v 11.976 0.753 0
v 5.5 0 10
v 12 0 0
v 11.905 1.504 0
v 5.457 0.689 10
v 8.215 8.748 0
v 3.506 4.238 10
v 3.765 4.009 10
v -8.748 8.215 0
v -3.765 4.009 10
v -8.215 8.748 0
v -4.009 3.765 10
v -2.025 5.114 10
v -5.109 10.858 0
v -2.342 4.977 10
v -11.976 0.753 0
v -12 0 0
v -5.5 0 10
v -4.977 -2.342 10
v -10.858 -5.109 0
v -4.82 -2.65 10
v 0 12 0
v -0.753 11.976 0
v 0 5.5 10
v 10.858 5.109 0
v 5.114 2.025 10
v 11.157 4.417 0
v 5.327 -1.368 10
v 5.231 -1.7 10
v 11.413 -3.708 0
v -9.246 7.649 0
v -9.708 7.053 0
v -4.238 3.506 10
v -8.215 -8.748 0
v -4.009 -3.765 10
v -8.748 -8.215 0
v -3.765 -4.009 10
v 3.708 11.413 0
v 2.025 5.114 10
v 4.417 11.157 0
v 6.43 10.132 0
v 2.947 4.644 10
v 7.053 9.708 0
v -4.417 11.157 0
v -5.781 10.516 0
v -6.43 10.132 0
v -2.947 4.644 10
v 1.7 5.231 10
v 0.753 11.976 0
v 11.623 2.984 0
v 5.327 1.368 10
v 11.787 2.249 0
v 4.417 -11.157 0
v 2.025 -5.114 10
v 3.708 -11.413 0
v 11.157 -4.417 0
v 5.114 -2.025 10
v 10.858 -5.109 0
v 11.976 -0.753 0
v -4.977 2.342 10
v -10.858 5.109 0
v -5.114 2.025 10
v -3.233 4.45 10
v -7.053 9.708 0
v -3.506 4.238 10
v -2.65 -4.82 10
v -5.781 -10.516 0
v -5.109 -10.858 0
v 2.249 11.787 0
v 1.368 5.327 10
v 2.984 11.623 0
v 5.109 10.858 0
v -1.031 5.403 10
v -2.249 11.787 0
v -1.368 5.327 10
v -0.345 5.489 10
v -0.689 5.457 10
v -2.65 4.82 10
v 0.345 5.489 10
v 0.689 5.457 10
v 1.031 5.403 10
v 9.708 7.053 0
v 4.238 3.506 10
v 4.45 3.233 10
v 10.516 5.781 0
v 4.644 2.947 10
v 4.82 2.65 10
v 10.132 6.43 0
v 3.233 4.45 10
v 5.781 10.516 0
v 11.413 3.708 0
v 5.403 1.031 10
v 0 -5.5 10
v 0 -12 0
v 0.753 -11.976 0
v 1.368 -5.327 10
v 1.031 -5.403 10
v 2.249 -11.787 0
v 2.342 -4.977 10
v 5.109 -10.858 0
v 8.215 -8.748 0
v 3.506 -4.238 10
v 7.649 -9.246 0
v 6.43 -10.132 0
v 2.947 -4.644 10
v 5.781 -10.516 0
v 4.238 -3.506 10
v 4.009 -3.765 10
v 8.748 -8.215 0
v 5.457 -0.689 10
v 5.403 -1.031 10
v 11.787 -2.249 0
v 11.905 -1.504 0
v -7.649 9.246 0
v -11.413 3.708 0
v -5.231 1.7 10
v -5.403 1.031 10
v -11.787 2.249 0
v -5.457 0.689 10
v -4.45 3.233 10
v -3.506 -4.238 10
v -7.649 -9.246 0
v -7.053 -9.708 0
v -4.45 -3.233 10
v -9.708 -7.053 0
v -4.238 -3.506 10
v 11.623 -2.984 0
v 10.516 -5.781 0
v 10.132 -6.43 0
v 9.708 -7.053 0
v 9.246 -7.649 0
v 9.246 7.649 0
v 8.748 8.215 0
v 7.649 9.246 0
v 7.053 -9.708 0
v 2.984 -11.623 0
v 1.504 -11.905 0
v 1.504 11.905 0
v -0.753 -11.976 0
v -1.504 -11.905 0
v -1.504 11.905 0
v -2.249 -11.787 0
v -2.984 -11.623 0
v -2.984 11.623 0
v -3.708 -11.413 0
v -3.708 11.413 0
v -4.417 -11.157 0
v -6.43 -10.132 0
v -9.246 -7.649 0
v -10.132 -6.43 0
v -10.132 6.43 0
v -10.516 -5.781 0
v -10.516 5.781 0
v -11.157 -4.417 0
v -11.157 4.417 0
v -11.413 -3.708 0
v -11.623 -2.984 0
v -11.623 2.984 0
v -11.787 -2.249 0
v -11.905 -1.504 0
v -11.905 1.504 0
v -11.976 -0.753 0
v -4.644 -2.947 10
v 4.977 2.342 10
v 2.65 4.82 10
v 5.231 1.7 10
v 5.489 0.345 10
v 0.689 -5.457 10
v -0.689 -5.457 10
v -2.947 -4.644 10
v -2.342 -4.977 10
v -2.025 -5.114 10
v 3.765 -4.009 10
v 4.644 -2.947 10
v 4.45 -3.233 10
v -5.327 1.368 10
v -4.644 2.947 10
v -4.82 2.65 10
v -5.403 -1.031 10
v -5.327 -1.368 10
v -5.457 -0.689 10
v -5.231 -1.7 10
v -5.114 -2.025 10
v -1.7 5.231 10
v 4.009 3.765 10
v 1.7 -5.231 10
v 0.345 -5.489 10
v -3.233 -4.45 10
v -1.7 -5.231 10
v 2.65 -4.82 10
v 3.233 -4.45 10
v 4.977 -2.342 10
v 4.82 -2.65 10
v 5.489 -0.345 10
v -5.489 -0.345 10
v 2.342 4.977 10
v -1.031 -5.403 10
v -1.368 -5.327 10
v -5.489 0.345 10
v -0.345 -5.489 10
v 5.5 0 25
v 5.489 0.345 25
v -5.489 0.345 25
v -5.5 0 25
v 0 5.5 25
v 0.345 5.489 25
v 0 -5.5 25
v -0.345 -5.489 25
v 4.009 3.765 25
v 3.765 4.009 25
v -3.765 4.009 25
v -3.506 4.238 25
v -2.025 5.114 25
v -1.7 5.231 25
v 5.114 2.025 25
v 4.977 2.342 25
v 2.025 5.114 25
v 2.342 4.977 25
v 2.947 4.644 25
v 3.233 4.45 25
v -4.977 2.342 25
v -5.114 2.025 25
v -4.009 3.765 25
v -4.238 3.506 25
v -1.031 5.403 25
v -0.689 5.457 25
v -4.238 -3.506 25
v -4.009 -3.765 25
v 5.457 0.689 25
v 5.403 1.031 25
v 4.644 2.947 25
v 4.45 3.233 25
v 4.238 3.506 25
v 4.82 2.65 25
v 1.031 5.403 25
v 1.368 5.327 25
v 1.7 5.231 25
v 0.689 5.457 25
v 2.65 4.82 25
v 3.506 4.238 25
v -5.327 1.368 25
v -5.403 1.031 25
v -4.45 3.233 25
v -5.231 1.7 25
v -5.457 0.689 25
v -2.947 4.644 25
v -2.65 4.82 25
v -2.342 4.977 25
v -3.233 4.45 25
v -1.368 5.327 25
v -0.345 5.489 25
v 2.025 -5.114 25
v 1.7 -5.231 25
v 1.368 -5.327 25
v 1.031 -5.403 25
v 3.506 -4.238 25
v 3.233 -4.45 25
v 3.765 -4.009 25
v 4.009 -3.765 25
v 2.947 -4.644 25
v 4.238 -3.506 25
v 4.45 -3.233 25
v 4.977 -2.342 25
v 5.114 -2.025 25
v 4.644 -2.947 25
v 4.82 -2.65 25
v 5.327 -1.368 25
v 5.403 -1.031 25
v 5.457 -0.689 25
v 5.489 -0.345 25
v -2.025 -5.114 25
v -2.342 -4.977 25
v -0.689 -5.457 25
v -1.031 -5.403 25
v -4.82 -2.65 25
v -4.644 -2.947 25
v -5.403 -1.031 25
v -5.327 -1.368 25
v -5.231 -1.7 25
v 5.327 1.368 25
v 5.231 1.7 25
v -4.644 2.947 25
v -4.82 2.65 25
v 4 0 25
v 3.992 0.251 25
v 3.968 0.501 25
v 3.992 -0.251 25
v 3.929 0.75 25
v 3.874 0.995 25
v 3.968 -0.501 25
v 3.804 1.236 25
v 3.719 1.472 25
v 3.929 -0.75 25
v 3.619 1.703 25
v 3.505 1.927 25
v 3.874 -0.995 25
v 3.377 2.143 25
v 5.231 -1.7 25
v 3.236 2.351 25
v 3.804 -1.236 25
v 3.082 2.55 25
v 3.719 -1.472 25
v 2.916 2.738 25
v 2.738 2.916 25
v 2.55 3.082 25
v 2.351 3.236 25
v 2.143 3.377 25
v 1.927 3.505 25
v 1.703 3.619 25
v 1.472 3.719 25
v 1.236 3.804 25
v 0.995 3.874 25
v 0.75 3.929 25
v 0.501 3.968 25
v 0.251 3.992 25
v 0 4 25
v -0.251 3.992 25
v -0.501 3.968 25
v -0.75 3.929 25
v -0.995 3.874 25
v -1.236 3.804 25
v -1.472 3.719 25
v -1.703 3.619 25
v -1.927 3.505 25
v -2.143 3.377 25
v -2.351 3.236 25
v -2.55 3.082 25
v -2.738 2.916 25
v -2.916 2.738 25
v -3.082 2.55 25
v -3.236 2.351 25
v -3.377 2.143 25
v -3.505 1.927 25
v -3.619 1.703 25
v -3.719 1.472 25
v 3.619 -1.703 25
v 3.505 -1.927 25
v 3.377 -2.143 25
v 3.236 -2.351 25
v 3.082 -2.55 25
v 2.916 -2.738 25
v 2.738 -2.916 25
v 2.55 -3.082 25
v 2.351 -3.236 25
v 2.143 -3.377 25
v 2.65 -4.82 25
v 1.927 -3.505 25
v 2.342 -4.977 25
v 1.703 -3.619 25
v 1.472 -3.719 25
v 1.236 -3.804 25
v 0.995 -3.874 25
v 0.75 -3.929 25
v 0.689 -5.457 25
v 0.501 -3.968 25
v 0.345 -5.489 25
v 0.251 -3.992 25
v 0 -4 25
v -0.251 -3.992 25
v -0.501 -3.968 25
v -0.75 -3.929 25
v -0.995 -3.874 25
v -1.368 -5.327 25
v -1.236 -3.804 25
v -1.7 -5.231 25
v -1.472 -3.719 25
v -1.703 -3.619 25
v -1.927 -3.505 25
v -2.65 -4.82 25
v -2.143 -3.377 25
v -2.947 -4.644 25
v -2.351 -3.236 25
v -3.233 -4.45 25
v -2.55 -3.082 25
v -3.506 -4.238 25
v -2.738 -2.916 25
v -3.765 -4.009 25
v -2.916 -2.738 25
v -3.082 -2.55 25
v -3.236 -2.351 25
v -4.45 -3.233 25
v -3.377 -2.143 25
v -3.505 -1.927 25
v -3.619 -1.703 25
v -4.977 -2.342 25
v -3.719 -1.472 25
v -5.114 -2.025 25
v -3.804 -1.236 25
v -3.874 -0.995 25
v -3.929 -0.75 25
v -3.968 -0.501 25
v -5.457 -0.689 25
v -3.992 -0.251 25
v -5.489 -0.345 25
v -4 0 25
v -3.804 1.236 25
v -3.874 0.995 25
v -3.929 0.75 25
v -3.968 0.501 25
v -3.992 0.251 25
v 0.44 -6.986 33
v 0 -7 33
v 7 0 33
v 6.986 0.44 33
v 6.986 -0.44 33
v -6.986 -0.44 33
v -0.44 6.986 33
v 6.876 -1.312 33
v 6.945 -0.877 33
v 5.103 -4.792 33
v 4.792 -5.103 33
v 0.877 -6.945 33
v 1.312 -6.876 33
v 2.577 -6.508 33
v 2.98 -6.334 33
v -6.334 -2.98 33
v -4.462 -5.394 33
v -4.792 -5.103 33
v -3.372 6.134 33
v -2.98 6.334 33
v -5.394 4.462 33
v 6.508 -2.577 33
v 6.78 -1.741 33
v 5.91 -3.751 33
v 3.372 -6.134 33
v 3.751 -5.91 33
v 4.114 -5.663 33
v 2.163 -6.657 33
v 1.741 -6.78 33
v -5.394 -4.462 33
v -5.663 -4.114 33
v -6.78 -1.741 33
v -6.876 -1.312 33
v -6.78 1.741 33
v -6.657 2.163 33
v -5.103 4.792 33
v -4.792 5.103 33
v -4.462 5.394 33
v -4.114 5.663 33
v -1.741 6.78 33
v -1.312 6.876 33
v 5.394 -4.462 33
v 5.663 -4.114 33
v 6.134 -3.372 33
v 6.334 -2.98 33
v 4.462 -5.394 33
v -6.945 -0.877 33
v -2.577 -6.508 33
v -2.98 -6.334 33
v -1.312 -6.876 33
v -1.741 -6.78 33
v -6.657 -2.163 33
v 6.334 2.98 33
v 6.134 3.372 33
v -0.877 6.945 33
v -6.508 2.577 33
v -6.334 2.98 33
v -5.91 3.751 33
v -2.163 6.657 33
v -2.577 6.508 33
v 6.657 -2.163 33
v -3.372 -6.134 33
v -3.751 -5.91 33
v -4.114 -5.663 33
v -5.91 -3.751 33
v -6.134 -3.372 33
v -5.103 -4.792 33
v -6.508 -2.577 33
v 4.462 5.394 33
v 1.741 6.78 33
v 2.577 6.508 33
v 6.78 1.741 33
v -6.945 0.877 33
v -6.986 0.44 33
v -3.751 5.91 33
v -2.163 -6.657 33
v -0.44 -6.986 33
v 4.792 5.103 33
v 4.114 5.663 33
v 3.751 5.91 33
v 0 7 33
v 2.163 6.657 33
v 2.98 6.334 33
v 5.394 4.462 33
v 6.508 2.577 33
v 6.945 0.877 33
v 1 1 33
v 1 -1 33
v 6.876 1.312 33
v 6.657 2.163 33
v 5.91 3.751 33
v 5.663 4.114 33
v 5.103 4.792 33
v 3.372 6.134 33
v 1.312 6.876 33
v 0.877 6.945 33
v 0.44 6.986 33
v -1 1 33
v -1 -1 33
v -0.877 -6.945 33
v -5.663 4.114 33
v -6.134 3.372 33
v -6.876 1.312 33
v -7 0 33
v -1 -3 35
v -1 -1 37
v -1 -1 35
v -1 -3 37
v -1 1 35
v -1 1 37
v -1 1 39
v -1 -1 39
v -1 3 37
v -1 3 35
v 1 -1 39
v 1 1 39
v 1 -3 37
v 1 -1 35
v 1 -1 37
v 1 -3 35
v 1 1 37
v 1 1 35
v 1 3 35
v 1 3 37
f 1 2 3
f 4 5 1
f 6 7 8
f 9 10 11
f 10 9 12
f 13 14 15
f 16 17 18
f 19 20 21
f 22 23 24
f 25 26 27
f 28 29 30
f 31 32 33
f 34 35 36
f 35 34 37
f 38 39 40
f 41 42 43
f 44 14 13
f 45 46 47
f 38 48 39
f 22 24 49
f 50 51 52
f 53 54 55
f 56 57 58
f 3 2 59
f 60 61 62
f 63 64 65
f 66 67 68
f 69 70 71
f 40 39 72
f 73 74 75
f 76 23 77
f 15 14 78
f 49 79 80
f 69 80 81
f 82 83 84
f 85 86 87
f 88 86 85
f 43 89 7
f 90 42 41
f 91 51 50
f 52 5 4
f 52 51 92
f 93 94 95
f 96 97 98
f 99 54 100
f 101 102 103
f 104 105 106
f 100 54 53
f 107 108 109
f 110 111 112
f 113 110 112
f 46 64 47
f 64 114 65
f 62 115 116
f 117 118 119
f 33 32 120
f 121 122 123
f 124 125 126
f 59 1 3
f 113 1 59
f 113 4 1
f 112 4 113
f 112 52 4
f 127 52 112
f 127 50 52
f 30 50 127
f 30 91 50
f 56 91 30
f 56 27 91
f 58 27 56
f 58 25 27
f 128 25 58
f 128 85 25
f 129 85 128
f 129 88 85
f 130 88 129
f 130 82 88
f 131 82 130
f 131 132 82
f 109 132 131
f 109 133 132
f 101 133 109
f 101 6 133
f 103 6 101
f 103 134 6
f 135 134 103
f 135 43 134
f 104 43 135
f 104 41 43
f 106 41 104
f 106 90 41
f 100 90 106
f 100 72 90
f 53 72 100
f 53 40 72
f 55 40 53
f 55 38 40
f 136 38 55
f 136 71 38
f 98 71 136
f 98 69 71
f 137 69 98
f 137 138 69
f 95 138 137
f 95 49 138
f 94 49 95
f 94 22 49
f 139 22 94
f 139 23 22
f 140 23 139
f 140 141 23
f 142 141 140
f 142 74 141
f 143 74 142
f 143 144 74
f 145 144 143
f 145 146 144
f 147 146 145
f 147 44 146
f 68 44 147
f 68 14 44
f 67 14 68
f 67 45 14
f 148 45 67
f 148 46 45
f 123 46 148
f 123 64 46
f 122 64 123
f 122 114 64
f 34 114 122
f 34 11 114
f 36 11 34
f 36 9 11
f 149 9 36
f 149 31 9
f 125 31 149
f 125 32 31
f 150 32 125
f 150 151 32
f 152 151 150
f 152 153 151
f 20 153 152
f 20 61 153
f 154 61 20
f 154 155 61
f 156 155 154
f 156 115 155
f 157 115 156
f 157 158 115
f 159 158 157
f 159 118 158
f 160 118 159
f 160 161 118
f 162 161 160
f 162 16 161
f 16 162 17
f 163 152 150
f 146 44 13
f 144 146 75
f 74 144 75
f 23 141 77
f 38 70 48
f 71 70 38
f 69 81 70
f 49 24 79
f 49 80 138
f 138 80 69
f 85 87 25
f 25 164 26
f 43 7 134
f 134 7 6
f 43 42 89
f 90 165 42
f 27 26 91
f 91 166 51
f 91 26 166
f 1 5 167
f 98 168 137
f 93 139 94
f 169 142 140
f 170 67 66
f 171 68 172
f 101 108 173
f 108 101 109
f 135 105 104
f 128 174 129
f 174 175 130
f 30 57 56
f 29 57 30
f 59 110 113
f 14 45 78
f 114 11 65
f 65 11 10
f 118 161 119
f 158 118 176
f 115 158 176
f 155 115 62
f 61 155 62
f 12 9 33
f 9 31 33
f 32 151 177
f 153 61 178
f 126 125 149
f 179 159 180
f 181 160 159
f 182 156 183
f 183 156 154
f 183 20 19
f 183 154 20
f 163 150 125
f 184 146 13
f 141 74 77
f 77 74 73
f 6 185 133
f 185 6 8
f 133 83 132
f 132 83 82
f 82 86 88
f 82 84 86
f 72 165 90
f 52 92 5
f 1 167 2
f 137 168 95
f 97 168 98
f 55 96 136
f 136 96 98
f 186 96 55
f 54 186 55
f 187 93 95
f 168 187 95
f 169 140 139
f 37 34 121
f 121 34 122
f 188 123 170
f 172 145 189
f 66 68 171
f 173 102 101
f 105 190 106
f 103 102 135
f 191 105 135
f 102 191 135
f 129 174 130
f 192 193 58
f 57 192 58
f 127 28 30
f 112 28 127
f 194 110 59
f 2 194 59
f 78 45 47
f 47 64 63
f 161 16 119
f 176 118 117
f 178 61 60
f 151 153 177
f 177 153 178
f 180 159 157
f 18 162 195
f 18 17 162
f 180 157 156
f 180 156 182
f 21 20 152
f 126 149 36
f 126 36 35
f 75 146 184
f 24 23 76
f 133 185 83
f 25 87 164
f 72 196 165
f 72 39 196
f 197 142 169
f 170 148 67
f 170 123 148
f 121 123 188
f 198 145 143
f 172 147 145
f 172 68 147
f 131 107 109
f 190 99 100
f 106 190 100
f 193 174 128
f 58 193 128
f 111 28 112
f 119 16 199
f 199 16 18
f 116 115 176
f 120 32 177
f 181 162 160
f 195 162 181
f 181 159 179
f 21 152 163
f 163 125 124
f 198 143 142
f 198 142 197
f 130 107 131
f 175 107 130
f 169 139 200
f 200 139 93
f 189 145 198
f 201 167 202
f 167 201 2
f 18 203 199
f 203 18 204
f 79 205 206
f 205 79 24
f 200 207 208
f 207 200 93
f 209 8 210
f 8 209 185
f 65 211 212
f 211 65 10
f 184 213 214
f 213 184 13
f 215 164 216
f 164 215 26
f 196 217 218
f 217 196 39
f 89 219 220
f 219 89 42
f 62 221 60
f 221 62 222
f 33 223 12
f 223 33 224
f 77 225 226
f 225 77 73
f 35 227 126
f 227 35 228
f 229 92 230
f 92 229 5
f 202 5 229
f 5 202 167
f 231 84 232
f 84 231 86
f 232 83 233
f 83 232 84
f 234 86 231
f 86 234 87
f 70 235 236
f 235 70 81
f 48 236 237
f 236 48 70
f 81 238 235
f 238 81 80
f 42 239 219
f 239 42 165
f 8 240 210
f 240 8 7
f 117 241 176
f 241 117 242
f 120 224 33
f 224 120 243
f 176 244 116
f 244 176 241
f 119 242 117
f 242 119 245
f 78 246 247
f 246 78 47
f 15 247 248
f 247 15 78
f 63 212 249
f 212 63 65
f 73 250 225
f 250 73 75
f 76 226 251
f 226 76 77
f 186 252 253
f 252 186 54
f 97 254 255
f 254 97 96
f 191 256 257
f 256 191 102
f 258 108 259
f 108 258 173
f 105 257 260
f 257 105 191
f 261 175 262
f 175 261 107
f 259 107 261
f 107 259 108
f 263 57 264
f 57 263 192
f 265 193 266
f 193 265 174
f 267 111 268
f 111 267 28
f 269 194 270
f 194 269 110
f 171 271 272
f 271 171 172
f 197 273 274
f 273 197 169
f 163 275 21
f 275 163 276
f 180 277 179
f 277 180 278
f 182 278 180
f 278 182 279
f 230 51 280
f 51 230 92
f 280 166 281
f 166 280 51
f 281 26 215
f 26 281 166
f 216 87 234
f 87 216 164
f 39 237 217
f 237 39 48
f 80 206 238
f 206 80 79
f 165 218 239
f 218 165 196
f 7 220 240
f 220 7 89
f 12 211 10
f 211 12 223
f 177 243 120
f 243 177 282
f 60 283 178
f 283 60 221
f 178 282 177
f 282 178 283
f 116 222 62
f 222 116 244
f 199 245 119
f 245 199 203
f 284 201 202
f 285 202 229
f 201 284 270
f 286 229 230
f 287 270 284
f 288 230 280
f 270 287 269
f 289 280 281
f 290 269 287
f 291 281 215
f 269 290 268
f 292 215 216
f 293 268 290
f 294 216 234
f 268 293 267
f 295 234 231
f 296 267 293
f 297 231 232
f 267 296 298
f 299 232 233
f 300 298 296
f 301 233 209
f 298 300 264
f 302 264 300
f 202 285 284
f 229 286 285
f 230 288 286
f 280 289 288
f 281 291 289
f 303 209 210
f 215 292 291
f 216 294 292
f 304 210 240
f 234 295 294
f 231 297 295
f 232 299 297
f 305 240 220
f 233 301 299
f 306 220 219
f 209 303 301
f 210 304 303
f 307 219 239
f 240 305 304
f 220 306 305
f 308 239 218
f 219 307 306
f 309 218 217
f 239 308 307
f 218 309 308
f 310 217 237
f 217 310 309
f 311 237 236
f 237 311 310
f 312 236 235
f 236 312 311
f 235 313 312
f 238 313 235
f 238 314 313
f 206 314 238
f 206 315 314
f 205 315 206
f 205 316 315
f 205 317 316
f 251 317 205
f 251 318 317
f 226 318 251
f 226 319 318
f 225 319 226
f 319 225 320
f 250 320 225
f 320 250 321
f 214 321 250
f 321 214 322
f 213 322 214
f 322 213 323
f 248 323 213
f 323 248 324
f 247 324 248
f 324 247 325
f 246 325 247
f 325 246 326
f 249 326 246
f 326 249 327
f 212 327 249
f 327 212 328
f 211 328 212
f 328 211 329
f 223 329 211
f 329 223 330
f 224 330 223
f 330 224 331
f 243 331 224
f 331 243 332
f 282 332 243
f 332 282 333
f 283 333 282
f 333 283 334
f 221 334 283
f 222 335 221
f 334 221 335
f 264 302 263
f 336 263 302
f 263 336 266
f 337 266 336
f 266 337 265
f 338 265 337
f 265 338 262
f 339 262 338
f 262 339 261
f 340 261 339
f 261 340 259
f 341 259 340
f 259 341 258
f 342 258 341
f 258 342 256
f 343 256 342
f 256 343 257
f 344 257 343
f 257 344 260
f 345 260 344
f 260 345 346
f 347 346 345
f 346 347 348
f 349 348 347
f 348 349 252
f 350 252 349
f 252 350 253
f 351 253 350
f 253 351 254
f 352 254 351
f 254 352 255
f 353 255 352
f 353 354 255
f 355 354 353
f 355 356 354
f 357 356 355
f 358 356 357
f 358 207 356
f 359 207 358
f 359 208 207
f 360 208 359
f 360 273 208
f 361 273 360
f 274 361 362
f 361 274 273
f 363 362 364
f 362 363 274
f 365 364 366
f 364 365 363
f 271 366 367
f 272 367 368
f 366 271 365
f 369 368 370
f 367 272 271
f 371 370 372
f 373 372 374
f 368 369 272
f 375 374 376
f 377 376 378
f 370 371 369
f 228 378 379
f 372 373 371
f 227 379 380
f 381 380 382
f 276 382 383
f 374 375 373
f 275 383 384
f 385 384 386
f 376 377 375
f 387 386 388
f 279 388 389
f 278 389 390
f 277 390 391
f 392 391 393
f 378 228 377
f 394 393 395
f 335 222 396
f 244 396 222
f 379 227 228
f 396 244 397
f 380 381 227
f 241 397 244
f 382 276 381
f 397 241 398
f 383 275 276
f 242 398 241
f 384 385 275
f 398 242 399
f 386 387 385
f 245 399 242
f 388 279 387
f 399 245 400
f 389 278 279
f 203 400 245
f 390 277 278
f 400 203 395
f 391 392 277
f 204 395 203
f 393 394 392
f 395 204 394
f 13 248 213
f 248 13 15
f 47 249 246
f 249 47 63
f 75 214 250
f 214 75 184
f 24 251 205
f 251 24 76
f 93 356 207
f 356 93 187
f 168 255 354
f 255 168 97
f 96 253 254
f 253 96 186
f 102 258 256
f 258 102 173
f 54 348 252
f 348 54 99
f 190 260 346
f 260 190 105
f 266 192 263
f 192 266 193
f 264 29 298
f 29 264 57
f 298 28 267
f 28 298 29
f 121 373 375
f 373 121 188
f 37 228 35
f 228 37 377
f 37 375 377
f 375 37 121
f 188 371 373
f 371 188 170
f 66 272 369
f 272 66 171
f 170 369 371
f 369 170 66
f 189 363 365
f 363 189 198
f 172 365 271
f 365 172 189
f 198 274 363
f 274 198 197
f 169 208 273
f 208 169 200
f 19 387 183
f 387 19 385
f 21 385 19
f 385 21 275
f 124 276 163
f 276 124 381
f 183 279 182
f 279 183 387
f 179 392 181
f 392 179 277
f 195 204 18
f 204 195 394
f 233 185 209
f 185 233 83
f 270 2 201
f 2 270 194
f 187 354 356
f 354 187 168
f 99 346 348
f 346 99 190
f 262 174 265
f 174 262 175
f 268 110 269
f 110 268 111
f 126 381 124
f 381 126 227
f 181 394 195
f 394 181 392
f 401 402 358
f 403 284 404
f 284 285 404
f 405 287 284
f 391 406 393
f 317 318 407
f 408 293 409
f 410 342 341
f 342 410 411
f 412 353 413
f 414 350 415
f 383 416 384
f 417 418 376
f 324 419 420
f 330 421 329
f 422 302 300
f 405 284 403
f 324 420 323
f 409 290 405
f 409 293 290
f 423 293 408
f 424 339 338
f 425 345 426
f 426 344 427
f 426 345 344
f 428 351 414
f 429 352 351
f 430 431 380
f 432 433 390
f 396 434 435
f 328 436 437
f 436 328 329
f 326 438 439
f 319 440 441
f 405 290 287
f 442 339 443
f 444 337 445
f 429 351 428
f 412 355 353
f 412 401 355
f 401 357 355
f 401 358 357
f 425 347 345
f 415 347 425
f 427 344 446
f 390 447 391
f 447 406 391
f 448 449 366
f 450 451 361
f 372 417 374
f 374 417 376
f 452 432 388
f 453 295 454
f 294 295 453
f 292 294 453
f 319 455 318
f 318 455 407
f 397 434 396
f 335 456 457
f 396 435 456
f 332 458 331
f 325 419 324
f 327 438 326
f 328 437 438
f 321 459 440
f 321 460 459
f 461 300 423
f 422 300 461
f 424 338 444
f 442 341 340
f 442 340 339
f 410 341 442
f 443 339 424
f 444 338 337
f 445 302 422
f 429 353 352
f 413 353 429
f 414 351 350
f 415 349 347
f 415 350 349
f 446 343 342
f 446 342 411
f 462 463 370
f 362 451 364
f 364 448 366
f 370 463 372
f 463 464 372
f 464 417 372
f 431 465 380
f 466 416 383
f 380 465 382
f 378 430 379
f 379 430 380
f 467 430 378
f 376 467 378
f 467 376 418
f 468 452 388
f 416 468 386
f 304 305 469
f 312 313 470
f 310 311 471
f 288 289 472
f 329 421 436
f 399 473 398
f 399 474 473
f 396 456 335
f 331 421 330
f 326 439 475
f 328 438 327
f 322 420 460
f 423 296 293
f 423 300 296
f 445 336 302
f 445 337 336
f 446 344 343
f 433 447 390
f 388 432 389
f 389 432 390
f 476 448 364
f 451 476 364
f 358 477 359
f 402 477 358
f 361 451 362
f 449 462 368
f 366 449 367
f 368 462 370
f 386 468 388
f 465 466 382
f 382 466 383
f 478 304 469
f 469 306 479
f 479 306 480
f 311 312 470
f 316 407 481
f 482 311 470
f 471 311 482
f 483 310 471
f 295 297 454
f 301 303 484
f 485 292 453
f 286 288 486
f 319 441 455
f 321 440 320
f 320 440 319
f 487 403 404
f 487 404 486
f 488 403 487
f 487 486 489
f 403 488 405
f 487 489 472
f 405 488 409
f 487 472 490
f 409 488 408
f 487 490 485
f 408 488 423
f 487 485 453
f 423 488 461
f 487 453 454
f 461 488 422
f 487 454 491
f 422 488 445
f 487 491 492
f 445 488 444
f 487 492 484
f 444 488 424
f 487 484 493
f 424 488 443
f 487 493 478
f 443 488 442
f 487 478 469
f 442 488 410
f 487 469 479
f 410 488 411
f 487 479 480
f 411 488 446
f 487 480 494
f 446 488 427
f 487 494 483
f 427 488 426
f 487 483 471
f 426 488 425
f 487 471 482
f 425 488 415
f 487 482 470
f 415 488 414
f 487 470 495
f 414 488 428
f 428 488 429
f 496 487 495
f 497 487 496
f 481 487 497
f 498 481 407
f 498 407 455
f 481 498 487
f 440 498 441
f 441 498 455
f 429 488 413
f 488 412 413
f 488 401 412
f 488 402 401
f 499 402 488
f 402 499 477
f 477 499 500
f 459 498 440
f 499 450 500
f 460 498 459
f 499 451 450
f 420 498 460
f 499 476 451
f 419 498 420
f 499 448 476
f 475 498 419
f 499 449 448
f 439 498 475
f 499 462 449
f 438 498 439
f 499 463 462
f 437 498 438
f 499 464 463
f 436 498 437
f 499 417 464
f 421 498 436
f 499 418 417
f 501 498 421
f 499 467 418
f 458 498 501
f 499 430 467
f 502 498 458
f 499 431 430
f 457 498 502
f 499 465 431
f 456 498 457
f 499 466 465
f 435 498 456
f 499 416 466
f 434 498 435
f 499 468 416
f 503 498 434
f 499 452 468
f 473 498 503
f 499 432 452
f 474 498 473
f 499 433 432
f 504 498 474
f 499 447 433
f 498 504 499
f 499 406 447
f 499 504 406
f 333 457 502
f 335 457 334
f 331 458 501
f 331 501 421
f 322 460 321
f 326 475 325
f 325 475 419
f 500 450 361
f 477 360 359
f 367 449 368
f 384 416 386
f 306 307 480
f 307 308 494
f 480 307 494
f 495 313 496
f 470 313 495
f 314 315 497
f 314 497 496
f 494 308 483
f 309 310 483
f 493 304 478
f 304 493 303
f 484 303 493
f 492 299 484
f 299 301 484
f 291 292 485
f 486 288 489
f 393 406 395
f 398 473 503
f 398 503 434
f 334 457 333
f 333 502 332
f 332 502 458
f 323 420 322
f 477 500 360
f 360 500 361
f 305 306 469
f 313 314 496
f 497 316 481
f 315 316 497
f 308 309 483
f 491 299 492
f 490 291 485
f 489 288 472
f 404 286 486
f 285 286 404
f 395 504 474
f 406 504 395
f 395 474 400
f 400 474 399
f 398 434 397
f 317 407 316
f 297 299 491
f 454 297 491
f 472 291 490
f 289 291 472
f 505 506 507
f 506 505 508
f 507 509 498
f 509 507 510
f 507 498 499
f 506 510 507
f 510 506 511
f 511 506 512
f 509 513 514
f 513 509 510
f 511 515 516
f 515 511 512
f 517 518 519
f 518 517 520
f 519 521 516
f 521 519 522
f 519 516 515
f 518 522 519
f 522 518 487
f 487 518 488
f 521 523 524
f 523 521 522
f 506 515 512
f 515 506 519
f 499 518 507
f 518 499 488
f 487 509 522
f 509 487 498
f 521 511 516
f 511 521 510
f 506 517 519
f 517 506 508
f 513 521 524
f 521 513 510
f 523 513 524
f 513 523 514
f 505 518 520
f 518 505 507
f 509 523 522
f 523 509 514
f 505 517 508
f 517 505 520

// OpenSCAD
// 分割を細かくする
$fn = 100;

// 土台の下
r1 = 12;
// 真ん中の円柱の太さ
r2 = 5.5;
// キングの頭の下部の半径
r3 = 4;
// キングの頭の上部の半径
r4 = 7;
// 土台の高さ
h1 = 10;
// 円柱の高さ
h2 = 15;
// キングの頭の高さ
h3 = 8;
// 十字架の大きさ
cross_size = 2;

union() {
// 土台の円錐台
cylinder(r1=r1, r2=r2, h=h1);
// 真ん中の円柱
translate([0, 0, h1]) {
    cylinder(r=r2, h=h2);
}
// 頭
translate([0, 0, h1 + h2]) {
    cylinder(r1=r3, r2=r4, h=h3);
}
// 十字架
// 縦の棒
translate([
    0,
    0,
    h1 + h2 + h3 + cross_size * 1.5
]) {
    cube(
        [
            cross_size,
            cross_size,
            cross_size * 3
        ],
        center=true
    );
}
// 横の棒
translate([
    0,
    0,
    h1 + h2 + h3 + cross_size * 1.5
]) {
    cube(
        [
            cross_size,
            cross_size * 3,
            cross_size
        ],
        center=true
    );
}
}
